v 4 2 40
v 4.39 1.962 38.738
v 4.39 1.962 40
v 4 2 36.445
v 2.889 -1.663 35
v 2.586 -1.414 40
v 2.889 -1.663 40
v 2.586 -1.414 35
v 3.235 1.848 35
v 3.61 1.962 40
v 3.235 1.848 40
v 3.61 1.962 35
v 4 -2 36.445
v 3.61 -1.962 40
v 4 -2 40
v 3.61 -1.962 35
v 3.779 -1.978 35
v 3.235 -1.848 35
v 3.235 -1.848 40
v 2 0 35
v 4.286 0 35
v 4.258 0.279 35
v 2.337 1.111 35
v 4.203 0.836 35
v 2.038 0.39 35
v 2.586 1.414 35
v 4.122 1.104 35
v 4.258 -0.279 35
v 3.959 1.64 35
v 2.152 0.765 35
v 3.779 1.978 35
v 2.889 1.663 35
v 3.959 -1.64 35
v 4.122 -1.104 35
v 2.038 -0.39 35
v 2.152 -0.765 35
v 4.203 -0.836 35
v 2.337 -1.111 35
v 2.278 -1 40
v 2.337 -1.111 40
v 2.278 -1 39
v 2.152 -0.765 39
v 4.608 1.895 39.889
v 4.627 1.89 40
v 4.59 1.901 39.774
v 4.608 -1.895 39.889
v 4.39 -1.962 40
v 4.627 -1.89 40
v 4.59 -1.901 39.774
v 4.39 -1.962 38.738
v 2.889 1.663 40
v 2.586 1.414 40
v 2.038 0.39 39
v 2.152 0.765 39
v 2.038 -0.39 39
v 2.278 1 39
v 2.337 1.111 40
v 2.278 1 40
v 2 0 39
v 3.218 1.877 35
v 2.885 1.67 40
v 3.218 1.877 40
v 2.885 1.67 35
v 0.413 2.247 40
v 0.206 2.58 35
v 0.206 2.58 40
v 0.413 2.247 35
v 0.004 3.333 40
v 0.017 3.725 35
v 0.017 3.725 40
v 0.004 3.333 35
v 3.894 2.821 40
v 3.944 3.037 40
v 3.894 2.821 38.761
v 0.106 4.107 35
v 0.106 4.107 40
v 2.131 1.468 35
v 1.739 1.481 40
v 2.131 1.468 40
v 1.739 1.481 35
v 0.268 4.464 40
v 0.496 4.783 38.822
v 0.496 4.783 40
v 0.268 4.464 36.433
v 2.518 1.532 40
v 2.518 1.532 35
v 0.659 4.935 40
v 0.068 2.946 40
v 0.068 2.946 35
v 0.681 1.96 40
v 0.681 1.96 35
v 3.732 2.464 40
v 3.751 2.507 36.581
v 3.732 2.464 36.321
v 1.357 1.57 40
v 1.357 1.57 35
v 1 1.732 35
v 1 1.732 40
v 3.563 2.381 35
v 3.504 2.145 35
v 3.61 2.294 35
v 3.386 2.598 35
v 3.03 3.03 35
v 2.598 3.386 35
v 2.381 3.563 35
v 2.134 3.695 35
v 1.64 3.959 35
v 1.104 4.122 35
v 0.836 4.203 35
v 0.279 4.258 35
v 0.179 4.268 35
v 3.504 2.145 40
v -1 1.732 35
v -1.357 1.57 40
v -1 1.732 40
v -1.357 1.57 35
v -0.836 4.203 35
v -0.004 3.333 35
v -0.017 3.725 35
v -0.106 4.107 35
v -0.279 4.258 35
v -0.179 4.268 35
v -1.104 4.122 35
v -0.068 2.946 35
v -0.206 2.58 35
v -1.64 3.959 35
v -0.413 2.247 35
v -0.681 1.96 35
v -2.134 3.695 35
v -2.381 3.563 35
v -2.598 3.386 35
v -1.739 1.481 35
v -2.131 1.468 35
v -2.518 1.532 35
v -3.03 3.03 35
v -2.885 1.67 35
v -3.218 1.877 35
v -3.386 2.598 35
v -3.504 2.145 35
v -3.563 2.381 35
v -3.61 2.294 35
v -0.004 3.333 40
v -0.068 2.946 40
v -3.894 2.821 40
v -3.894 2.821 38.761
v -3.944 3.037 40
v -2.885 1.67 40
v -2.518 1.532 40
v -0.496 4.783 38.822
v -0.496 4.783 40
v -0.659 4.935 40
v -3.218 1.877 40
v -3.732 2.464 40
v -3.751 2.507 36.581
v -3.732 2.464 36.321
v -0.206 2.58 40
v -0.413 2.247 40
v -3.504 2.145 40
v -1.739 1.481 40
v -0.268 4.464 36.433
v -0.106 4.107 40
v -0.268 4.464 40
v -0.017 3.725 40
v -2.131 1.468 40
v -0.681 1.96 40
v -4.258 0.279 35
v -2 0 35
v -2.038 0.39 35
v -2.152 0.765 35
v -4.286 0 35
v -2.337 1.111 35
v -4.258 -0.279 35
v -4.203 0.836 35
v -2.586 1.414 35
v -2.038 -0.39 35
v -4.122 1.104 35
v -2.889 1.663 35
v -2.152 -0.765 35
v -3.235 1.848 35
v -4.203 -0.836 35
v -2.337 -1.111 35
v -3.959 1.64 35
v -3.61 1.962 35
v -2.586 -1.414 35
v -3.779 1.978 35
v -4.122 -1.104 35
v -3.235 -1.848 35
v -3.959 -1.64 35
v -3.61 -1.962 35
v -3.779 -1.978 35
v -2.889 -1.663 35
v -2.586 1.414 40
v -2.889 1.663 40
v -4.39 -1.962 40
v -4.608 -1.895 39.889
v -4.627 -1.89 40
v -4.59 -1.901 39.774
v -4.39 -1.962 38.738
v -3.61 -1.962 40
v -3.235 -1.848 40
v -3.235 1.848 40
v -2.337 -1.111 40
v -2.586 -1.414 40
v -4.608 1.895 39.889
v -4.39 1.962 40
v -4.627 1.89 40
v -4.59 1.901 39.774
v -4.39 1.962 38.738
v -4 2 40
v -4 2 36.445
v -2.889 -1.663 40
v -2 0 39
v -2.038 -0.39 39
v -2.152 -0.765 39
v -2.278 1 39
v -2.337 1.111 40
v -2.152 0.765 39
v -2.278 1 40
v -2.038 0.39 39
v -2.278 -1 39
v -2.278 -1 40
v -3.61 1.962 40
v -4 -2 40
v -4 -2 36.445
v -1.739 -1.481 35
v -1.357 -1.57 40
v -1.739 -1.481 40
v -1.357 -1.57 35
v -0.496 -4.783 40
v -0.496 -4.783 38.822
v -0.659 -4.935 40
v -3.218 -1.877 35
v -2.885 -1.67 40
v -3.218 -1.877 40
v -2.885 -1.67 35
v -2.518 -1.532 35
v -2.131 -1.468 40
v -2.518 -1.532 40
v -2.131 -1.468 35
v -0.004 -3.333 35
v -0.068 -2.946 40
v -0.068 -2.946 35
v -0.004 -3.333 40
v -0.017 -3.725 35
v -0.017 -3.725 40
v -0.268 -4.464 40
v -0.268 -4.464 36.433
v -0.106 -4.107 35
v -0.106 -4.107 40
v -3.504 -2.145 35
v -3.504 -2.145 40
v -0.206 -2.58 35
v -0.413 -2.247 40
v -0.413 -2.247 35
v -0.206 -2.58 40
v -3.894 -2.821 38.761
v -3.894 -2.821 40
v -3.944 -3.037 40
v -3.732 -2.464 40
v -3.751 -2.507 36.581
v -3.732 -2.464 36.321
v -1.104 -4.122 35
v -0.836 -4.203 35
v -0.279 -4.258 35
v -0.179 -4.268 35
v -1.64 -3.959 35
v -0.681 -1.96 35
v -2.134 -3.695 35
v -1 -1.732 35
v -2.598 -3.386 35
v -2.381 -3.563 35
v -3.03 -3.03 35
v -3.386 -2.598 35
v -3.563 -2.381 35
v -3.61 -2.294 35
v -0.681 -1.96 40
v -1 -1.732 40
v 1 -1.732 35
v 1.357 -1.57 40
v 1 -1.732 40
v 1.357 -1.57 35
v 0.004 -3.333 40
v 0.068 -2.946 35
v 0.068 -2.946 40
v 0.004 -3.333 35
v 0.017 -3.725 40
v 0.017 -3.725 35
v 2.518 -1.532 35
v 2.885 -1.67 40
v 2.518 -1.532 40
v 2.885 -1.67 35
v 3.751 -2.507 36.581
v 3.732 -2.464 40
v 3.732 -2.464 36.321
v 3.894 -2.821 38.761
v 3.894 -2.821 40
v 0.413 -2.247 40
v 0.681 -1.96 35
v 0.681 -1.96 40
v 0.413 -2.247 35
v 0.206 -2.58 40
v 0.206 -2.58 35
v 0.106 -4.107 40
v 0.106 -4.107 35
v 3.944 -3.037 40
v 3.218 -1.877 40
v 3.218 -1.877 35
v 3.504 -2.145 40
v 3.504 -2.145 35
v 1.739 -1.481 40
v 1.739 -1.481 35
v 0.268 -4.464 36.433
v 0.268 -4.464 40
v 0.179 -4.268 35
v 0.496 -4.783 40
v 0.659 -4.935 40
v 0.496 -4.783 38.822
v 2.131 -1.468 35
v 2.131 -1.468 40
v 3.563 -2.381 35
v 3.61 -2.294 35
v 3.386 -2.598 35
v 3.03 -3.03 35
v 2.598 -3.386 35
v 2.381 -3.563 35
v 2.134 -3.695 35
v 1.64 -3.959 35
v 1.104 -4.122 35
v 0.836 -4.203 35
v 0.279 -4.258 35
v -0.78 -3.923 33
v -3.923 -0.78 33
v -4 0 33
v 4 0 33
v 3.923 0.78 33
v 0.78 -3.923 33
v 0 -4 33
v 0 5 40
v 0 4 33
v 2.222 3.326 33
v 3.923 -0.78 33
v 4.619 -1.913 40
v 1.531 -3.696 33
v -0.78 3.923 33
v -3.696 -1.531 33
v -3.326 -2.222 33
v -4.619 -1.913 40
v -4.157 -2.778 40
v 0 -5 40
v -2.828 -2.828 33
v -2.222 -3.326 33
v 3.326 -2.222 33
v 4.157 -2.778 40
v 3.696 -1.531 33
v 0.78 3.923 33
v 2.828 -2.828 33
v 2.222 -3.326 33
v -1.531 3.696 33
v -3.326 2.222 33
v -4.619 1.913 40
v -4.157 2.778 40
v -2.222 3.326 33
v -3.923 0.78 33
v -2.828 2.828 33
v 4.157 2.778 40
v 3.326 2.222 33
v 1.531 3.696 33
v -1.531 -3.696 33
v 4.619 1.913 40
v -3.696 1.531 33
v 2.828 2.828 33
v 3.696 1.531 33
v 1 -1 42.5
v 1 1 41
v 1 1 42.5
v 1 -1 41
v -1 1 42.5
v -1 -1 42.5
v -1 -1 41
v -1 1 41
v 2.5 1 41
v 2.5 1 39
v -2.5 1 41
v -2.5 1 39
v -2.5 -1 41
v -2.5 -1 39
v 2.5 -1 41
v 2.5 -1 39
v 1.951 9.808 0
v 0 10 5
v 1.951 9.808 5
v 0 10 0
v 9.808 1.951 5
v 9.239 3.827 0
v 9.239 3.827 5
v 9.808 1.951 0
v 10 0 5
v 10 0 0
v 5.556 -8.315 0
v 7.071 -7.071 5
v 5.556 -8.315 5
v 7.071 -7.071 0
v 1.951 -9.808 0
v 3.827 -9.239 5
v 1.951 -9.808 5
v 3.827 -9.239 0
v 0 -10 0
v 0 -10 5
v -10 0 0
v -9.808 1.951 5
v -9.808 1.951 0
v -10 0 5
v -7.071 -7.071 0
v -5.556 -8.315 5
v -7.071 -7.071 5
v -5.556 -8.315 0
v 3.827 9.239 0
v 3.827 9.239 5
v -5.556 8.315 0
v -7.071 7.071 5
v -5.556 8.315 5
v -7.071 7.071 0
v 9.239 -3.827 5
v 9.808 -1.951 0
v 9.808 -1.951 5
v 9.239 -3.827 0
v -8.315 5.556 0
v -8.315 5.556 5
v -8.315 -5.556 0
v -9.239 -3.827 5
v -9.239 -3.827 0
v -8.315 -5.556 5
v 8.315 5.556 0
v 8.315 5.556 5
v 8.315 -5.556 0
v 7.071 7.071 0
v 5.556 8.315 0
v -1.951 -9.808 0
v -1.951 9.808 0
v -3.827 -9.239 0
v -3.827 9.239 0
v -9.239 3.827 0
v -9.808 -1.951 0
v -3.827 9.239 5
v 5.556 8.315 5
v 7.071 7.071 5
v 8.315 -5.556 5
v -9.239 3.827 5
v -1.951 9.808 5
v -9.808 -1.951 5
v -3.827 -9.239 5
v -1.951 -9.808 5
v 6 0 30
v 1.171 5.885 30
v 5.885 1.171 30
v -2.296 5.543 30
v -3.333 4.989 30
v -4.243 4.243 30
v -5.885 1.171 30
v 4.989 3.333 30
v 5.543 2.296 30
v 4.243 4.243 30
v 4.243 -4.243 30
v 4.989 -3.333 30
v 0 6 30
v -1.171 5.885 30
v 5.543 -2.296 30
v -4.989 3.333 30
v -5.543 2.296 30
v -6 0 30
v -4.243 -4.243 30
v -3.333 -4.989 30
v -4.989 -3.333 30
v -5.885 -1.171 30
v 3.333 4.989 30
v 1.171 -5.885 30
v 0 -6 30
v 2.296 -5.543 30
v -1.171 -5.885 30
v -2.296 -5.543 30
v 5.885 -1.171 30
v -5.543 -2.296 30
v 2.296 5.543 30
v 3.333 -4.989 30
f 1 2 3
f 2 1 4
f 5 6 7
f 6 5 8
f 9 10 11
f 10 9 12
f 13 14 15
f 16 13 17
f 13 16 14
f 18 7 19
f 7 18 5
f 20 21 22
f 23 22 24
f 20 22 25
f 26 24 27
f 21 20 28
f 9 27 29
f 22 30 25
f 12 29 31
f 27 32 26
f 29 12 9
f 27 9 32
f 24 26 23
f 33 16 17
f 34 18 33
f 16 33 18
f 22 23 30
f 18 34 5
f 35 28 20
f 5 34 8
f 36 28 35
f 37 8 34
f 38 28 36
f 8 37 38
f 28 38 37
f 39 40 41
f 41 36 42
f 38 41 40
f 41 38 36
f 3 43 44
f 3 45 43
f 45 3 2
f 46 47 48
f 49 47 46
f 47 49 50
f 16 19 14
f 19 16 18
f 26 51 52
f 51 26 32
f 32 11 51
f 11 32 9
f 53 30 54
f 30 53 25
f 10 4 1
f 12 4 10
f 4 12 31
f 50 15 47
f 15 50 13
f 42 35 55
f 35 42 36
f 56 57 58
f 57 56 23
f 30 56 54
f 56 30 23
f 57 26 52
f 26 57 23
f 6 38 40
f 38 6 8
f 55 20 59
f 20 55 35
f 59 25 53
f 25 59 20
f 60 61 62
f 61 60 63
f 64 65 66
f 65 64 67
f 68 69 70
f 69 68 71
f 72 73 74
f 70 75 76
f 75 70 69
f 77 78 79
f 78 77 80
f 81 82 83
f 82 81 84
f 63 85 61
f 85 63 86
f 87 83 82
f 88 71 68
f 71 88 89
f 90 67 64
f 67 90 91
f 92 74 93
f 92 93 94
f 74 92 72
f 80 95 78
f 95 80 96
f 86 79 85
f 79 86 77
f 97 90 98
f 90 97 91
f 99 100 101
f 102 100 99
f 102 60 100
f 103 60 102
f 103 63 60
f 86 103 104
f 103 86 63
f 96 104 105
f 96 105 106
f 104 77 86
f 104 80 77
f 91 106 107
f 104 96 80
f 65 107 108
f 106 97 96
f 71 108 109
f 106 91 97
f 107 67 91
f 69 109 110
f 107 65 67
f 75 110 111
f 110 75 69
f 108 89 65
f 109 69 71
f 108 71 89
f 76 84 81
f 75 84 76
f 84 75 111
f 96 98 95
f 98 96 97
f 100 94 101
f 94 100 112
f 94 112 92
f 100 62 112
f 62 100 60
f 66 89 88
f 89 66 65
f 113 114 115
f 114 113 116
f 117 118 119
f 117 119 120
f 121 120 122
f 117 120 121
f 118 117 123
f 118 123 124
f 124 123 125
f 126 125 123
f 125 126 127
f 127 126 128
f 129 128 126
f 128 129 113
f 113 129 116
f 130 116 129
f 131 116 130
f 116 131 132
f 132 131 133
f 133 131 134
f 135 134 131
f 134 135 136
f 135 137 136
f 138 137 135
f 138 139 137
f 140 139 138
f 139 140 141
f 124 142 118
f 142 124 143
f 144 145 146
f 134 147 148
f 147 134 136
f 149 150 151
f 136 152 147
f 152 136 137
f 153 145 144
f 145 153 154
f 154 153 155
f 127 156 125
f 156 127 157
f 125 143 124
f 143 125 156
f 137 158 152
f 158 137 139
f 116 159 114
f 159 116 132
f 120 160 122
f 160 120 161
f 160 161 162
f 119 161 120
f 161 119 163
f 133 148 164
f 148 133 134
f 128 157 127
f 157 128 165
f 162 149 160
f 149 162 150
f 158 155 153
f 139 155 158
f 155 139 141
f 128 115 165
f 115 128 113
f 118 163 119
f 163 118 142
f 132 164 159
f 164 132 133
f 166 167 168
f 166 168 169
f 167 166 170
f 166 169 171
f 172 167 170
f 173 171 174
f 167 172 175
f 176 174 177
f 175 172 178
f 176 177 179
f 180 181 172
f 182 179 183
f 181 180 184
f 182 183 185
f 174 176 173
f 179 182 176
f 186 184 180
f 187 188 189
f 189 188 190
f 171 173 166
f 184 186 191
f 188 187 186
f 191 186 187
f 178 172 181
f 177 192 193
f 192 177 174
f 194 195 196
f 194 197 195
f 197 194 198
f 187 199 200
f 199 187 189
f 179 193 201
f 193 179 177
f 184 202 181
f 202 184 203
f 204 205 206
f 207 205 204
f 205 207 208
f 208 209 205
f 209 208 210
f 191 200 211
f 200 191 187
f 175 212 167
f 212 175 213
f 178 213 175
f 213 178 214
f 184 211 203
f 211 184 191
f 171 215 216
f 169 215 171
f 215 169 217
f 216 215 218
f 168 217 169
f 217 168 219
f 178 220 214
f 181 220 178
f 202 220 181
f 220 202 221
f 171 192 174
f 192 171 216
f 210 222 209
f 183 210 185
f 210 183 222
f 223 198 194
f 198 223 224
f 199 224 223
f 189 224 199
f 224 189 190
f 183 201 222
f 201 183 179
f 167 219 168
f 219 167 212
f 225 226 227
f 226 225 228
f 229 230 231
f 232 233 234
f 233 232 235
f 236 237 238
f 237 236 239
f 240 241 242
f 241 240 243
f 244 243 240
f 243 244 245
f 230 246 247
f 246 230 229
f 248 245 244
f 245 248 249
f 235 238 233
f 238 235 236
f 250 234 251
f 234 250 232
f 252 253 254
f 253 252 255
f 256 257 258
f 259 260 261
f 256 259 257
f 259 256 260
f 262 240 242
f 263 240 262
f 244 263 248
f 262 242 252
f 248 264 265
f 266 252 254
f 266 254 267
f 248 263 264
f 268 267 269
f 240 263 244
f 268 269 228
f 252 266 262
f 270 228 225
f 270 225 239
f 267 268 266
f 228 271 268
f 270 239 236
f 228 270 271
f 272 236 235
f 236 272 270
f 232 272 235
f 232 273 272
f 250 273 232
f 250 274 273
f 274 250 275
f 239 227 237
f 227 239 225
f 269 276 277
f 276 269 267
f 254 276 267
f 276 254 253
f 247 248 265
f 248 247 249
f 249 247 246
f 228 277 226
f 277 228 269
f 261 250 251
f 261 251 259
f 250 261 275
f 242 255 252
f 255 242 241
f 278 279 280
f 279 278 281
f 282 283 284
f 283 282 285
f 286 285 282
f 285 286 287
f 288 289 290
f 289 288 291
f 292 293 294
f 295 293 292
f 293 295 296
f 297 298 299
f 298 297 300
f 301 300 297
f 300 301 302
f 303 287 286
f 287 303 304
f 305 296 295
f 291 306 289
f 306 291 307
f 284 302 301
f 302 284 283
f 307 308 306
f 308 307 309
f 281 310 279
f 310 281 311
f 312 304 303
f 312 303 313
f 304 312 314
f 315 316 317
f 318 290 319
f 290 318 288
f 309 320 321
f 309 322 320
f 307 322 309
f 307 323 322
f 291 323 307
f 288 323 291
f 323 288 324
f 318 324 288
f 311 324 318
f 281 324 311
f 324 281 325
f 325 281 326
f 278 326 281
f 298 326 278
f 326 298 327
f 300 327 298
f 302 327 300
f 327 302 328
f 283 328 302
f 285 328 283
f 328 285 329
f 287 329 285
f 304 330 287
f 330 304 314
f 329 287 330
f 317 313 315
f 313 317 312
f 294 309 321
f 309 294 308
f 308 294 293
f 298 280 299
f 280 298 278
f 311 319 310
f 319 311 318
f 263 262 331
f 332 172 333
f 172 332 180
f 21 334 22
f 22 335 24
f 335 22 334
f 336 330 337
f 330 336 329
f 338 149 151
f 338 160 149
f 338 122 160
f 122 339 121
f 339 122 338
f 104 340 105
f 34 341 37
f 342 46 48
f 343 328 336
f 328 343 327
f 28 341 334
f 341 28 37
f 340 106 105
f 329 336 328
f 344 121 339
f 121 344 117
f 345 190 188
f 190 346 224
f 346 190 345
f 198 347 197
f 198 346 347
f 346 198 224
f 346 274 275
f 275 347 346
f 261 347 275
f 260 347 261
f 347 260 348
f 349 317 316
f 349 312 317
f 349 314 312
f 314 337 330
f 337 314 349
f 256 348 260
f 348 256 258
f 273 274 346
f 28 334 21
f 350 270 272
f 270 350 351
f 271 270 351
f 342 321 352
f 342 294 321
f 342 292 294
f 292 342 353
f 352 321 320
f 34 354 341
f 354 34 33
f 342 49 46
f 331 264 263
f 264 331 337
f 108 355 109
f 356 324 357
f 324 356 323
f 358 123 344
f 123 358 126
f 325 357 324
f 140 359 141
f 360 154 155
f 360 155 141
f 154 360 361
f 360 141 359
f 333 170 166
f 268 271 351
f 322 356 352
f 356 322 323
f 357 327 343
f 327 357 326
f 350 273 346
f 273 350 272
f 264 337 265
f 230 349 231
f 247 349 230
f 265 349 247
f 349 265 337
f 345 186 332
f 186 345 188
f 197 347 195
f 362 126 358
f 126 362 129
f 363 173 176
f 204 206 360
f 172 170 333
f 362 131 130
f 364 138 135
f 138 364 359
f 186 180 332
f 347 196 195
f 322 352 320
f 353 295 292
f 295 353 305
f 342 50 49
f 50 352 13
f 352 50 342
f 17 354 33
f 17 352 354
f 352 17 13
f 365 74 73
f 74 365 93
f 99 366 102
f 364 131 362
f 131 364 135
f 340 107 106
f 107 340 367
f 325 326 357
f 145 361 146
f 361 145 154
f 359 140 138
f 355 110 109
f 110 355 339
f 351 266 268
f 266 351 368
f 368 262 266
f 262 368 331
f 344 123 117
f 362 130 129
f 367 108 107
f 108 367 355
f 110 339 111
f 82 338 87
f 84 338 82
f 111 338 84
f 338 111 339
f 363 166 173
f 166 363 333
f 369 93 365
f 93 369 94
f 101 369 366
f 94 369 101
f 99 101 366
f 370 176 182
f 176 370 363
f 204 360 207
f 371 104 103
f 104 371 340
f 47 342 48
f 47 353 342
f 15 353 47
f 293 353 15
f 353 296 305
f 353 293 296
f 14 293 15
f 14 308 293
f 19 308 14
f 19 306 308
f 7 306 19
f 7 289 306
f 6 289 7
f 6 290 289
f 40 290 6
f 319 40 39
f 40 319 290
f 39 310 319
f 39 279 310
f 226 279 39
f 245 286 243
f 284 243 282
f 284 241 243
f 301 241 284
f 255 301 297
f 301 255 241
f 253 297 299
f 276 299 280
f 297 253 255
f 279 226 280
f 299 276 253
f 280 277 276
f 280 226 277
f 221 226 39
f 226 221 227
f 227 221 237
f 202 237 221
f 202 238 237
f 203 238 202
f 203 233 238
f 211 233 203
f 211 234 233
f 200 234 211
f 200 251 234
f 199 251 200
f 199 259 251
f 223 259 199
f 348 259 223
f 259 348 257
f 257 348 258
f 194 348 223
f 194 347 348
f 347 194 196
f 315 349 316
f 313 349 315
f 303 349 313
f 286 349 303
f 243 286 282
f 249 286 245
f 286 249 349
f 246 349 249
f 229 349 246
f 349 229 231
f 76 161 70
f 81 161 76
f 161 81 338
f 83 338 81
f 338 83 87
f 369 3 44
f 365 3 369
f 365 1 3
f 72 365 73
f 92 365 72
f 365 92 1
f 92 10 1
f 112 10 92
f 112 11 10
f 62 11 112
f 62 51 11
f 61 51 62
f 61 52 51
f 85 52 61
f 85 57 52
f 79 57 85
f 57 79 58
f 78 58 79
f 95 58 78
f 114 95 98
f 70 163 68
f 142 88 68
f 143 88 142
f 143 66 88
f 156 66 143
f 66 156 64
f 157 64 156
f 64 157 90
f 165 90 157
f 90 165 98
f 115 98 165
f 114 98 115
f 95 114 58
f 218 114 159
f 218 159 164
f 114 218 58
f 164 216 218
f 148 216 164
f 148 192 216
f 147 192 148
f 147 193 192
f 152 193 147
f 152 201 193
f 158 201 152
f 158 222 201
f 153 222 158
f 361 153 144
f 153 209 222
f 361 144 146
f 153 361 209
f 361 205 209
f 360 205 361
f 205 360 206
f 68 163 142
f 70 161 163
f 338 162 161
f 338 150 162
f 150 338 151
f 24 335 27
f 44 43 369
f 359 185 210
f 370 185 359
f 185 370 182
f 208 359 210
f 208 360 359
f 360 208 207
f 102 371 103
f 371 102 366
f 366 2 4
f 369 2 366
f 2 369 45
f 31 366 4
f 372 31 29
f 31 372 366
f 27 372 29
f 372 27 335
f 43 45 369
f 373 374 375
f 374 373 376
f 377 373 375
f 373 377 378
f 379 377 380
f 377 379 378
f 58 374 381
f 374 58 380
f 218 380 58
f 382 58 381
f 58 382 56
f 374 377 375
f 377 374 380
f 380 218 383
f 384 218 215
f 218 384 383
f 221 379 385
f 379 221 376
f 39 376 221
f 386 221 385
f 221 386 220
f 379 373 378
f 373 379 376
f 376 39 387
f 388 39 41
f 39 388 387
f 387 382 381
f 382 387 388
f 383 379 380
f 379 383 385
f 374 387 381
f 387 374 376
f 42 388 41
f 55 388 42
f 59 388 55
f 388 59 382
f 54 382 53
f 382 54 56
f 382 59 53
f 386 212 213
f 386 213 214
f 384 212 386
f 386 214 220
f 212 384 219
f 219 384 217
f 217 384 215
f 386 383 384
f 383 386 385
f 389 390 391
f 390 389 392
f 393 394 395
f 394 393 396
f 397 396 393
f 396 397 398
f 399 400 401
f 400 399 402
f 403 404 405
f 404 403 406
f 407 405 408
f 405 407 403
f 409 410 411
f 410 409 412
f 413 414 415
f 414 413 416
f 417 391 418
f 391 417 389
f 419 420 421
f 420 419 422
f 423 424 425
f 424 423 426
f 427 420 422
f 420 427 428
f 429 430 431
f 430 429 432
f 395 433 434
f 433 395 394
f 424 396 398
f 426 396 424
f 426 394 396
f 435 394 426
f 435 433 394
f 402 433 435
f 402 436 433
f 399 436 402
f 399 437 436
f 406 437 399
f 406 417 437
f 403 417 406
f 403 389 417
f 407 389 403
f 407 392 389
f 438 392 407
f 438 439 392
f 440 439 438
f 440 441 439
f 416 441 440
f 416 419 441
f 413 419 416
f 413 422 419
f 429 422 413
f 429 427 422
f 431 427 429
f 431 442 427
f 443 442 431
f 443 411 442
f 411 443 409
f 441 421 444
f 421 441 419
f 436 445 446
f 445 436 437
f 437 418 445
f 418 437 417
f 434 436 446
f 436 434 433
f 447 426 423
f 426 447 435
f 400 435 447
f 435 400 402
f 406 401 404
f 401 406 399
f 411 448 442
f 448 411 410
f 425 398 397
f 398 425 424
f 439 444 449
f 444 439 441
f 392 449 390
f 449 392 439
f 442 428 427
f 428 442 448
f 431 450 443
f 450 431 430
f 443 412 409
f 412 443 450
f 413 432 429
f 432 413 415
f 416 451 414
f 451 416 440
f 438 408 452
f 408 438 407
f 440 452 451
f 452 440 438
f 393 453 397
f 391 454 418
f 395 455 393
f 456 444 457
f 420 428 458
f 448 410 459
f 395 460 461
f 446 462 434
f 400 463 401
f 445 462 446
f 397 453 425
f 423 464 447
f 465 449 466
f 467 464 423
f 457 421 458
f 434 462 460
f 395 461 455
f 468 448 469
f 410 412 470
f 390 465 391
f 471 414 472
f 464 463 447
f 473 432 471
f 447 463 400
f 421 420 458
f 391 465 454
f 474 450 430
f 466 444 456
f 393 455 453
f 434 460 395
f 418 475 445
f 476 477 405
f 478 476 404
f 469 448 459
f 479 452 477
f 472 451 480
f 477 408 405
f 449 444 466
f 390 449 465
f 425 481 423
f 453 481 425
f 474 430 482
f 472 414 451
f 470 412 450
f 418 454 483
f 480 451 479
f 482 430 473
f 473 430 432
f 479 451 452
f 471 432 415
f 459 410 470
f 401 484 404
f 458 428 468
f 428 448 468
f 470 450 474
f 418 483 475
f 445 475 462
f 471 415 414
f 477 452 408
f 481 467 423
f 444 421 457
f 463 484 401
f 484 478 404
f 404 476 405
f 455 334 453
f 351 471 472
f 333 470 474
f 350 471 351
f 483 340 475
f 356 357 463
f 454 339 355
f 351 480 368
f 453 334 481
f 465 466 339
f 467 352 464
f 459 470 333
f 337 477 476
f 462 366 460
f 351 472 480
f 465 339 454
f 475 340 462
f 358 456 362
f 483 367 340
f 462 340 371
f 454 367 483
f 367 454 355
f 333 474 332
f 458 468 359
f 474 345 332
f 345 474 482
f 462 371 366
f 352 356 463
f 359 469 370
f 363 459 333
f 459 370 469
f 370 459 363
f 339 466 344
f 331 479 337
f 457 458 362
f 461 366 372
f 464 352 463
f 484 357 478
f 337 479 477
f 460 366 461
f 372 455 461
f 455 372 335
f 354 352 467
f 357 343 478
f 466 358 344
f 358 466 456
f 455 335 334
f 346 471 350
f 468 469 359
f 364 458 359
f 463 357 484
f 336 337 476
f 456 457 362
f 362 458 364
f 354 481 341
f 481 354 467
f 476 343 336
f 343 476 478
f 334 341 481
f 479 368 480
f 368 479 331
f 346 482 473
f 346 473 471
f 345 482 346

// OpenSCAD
$fn = 32;

// Chess King Model

module king_base() {
    cylinder(h = 5, r1 = 10, r2 = 10);
}

module king_body() {
    translate([0, 0, 5])
    cylinder(h = 25, r1 = 10, r2 = 6);
}

module king_neck() {
    translate([0, 0, 30])
    cylinder(h = 3, r1 = 6, r2 = 4);
}

module king_crown() {
    translate([0, 0, 33])
    difference() {
        cylinder(h = 7, r1 = 4, r2 = 5);
        // Cutouts for crown points
        for (i = [0 : 60 : 360]) {
            rotate([0, 0, i])
            translate([4, 0, 2])
            cylinder(h = 10, r1 = 2, r2 = 2);
        }
    }
}

module king_cross() {
    translate([0, 0, 40]) {
        // Vertical bar
        cube([2, 2, 5], center = true);
        // Horizontal bar
        rotate([0, 0, 0])
        cube([5, 2, 2], center = true);
    }
}

// Assembly
union() {
    king_base();
    king_body();
    king_neck();
    king_crown();
    king_cross();
}
